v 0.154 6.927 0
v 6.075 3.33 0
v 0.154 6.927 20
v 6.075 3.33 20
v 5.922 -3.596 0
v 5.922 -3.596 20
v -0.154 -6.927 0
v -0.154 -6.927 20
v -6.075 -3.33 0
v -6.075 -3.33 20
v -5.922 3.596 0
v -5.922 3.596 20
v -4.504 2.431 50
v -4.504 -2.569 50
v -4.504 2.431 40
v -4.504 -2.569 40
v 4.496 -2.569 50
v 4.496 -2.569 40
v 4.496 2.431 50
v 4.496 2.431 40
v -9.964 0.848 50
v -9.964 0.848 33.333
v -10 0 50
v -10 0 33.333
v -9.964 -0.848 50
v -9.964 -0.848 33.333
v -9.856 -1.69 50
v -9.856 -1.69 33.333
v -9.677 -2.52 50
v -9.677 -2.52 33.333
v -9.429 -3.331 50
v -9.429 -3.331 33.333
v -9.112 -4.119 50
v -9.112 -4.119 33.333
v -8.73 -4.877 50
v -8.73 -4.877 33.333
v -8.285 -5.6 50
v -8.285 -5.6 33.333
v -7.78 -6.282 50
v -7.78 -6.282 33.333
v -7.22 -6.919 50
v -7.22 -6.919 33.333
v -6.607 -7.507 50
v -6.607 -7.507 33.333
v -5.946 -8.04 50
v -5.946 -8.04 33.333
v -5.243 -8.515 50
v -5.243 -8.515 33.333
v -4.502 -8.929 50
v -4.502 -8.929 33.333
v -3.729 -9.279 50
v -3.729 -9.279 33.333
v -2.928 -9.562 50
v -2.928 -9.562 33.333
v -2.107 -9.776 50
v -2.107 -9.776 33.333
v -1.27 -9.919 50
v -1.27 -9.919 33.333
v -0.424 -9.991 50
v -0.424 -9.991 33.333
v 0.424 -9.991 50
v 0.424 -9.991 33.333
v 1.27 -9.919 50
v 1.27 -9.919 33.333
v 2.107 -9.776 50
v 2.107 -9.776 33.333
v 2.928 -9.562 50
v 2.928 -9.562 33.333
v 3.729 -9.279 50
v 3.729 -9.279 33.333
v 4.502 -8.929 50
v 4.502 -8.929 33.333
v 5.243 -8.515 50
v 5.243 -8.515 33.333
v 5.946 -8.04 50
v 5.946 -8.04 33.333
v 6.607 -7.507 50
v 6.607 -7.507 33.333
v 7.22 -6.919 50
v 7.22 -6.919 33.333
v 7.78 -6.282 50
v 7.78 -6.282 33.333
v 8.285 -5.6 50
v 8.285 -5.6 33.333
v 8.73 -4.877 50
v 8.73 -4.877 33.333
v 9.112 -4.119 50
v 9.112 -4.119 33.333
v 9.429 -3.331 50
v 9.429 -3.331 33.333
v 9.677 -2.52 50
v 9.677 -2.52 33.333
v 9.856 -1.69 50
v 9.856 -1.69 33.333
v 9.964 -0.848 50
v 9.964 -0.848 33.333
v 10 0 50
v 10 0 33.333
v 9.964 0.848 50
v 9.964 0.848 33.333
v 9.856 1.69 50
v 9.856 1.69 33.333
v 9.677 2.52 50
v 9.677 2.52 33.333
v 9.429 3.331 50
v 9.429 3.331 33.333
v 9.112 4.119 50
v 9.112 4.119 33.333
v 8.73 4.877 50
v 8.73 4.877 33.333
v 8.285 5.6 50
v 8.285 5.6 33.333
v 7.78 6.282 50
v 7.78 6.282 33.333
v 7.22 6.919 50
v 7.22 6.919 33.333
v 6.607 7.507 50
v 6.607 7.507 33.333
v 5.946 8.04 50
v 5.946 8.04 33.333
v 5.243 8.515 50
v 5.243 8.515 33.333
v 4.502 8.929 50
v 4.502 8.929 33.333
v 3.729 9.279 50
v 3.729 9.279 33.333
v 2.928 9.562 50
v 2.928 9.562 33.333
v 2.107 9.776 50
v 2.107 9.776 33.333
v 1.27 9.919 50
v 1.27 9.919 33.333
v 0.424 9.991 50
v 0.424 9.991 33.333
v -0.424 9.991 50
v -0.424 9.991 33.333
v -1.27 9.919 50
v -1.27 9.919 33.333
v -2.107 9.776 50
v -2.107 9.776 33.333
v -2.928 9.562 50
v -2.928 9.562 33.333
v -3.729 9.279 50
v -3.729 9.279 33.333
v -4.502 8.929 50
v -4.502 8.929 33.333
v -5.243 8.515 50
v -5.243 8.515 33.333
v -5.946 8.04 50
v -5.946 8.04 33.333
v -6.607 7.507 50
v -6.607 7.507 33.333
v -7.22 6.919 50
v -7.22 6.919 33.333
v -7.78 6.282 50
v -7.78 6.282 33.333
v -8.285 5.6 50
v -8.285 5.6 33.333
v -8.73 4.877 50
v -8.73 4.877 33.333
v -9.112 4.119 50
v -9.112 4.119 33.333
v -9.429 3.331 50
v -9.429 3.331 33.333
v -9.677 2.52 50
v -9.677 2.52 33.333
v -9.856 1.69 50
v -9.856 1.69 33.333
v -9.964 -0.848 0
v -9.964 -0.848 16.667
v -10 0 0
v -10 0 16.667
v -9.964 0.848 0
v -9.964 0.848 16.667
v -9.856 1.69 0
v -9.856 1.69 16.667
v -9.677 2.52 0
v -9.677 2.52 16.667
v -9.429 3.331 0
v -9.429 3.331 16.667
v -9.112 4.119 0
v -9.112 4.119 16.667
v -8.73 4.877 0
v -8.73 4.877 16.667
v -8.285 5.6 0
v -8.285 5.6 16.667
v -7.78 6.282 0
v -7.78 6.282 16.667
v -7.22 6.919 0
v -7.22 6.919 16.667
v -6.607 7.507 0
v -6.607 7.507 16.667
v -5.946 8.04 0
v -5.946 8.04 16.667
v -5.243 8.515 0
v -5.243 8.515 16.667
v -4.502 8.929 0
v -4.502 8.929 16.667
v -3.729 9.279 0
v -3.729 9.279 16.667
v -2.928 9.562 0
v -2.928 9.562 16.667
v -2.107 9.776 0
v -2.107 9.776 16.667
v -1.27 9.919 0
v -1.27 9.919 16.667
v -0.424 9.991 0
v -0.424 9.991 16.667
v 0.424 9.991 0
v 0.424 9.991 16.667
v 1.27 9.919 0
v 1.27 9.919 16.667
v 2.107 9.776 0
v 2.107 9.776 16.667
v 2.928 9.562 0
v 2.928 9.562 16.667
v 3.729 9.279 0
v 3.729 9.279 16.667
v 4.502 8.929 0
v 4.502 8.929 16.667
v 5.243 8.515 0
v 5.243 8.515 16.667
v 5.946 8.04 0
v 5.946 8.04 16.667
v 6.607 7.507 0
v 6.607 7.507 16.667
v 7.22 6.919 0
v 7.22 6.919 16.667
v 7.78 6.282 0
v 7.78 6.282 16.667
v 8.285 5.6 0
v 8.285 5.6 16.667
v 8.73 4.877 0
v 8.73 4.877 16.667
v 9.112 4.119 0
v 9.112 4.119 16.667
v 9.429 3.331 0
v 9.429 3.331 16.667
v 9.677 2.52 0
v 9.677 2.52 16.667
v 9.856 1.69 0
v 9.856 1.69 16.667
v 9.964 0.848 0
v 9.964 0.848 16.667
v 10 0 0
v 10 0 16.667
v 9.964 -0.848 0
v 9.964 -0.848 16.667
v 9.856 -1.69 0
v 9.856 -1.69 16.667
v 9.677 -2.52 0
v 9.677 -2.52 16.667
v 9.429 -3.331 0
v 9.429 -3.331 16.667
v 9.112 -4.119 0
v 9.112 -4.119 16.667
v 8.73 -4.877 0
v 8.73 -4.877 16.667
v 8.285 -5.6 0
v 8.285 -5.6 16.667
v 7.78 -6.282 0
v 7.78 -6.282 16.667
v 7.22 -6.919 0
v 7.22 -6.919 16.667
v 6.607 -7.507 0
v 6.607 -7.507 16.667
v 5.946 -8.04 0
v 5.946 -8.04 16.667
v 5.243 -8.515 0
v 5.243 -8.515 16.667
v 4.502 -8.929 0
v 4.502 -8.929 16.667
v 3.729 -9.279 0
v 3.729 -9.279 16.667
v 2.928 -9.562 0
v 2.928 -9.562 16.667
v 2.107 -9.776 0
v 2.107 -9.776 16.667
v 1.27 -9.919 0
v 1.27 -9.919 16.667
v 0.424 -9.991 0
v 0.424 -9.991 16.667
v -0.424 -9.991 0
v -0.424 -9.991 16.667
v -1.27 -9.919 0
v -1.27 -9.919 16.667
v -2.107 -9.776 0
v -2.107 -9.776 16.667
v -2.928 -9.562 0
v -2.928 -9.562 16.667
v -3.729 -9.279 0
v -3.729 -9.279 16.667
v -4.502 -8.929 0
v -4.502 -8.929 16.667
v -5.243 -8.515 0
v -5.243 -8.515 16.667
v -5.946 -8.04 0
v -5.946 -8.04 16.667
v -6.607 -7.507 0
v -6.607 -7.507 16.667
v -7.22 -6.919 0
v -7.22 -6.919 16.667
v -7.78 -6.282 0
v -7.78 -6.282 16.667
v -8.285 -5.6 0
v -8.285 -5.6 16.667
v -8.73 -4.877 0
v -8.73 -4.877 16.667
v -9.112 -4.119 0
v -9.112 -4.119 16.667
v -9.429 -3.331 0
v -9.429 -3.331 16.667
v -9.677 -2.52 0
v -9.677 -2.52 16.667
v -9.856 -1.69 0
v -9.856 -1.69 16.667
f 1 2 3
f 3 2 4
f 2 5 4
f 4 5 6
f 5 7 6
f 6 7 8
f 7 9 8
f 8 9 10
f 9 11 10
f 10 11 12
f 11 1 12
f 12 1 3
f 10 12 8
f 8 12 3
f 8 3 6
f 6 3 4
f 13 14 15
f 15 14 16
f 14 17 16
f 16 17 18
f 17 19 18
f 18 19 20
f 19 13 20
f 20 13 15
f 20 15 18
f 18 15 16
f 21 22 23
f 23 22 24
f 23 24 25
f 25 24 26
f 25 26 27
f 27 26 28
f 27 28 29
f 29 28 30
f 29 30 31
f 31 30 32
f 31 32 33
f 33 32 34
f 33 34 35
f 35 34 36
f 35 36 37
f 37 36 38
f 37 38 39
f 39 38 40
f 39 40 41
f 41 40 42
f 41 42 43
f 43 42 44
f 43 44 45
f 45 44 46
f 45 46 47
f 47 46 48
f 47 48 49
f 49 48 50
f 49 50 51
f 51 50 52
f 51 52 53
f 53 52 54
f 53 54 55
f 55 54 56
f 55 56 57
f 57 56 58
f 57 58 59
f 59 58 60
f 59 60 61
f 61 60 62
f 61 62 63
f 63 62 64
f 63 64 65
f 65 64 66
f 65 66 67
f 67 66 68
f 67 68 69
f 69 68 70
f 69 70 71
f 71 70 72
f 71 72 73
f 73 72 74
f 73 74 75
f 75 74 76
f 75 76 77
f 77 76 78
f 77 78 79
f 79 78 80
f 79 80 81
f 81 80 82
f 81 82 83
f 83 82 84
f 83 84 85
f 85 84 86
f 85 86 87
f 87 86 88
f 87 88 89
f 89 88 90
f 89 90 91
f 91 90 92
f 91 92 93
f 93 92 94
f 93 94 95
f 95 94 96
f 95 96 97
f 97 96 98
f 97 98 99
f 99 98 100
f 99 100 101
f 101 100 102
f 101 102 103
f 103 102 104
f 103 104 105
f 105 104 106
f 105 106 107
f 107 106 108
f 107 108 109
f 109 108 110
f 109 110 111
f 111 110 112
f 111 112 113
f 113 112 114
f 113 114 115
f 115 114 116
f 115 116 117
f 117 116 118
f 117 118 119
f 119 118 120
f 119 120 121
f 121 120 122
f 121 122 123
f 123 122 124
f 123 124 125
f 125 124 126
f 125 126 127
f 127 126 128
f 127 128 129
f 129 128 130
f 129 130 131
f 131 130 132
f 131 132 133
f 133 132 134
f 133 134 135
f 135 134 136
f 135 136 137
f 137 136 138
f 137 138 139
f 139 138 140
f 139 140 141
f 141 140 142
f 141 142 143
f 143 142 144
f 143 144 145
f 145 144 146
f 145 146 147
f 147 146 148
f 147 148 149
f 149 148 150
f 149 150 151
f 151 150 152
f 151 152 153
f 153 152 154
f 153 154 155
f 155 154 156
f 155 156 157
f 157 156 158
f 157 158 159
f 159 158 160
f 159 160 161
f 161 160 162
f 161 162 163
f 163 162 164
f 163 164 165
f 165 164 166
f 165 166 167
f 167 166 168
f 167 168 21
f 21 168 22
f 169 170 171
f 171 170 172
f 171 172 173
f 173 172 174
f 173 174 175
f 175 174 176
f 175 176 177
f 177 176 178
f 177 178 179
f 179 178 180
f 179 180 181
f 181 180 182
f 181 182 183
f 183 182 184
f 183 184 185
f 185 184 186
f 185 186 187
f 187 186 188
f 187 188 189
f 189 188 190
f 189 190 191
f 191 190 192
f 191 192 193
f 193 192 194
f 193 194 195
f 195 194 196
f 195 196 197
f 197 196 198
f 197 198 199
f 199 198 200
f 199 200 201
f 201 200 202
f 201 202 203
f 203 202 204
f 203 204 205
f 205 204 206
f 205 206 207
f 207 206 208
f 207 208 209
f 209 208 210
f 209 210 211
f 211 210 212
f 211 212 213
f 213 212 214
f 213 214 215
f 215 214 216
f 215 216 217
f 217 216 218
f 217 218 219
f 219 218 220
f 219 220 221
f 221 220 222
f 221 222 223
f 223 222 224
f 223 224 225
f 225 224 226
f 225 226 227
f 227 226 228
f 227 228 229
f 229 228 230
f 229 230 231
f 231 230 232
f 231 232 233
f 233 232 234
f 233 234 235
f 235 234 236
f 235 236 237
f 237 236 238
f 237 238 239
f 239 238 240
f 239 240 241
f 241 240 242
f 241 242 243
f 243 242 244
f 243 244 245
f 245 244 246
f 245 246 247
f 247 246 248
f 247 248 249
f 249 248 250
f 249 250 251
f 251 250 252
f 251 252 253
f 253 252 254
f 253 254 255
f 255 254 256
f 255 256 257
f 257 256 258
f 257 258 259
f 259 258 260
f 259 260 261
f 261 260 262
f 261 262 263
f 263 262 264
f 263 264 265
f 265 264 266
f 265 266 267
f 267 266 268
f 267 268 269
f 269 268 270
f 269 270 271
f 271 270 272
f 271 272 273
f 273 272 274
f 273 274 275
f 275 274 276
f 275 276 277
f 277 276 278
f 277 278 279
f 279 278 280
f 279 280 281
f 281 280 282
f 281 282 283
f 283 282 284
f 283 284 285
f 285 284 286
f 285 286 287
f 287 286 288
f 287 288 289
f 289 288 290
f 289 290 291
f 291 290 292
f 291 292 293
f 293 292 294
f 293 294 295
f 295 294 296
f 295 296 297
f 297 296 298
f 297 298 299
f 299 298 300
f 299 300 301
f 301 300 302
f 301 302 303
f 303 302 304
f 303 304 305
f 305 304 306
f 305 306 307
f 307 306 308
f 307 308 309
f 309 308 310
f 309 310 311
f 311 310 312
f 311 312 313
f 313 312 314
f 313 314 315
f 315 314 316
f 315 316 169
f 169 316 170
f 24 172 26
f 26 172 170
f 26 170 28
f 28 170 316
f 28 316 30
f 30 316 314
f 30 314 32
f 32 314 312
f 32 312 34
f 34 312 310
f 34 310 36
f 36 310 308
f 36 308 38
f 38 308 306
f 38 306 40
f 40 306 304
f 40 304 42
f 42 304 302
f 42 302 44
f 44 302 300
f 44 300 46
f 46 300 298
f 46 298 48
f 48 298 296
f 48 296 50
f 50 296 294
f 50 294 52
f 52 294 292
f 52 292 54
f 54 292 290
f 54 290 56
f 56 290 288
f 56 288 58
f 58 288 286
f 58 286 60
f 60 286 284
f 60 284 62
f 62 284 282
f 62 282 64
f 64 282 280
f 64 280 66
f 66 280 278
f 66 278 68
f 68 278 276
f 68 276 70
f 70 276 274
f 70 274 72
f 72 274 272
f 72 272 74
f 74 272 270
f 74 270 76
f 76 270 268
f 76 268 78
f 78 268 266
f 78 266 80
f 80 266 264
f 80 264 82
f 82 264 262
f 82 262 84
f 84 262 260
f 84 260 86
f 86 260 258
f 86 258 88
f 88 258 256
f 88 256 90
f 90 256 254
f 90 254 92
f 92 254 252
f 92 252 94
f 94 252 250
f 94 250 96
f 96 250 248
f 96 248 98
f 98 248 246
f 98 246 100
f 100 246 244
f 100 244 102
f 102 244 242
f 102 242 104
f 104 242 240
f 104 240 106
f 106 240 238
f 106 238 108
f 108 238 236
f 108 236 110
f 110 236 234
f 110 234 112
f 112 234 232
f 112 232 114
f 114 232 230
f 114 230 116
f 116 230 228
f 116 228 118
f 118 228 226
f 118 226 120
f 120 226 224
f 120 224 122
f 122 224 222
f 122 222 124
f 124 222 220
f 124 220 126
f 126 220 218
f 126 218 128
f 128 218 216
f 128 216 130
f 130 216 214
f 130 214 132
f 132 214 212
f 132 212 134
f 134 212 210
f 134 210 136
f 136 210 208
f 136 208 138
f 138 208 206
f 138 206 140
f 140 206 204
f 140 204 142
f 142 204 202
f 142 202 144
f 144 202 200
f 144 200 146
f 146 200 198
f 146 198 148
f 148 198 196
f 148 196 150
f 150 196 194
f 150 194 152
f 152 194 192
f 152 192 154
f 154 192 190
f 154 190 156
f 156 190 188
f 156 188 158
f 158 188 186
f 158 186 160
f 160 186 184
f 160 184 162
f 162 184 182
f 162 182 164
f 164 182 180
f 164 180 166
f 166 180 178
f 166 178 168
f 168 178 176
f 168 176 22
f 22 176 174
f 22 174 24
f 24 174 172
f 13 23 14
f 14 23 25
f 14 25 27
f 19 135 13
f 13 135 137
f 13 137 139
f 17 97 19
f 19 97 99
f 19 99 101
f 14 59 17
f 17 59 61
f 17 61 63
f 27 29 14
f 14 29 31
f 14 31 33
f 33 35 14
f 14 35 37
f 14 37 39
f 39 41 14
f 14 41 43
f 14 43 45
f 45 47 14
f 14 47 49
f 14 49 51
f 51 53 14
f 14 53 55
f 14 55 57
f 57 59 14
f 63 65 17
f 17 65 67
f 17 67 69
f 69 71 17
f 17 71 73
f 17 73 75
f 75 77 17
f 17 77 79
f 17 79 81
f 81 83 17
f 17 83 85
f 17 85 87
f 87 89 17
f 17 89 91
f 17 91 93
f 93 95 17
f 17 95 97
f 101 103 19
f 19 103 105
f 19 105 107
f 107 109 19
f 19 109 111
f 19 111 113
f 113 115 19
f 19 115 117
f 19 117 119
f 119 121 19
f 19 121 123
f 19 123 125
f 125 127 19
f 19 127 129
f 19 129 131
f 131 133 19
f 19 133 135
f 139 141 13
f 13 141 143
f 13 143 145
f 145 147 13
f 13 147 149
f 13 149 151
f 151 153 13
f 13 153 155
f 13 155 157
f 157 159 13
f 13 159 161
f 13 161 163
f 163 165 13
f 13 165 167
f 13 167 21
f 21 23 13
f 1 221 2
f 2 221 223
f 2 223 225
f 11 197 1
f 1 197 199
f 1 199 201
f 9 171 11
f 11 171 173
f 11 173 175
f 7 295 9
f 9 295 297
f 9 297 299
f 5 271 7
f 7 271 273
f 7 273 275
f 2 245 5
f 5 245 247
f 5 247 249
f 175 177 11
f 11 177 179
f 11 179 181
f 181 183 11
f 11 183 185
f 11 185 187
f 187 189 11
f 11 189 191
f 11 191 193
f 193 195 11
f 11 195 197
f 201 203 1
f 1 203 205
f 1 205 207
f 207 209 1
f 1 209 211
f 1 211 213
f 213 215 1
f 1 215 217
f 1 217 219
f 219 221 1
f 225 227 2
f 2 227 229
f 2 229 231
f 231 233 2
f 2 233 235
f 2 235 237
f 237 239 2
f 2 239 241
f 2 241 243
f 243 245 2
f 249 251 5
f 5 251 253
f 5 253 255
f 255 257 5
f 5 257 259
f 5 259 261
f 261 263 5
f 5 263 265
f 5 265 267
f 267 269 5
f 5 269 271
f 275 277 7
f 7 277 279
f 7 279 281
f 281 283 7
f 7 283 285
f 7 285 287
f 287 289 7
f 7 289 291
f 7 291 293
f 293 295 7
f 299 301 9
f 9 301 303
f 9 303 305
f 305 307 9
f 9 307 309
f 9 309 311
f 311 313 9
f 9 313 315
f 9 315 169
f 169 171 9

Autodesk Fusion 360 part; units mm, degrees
sketch "Sketch1" plane through (0, 0, 0) normal (0, 0, 1) x (1, 0, 0) in component "ADAPTERI2"
  circle A0 centre (0, 0) radius 15
  dimension "d3" = 30
extrude "Extrude1" add sketch "Sketch1" along normal blind 50 in component "ADAPTERI2"
sketch "Sketch2" plane through (-0.004, -0.0691, 50) normal (0, 0, 1) x (-1, 0, 0) in component "ADAPTERI2"
  circle A0 centre (-0.004, -0.0691) radius 15
  line L0 (-4.5, 2.5) -> (4.5, 2.5)
  line L1 (4.5, 2.5) -> (4.5, -2.5)
  line L2 (4.5, -2.5) -> (-4.5, -2.5)
  line L3 (-4.5, -2.5) -> (-4.5, 2.5)
  line L4 (-4.5, 2.5) -> (4.5, -2.5) construction
  line L5 (4.5, 2.5) -> (-4.5, -2.5) construction
  dimension "d6" = 9
  dimension "d7" = 5
extrude "Extrude2" cut sketch "Sketch2" against normal blind 10 contours L0 L1 L2 L3 in component "ADAPTERI2"
sketch "Sketch3" plane through (-0.2192, -4.1274, 0) normal (0, 0, -1) x (1, 0, 0) in component "ADAPTERI2"
  circle A0 centre (0.2192, -4.1274) radius 15
  line L0 (0.3727, -11.0539) -> (6.2945, -7.4577)
  line L1 (6.2945, -7.4577) -> (6.1409, -0.5312)
  line L2 (6.1409, -0.5312) -> (0.0656, 2.7991)
  line L3 (0.0656, 2.7991) -> (-5.8561, -0.7971)
  line L4 (-5.8561, -0.7971) -> (-5.7026, -7.7236)
  line L5 (-5.7026, -7.7236) -> (0.3727, -11.0539)
  point P0 (0.2192, -4.1274)
  dimension "d10" = 6
extrude "Extrude3" cut sketch "Sketch3" against normal blind 20 contours L0 L1 L2 L3 L4 L5 in component "ADAPTERI2"
move_face "OffsetFaces1" offset -5 1 faces at (14.9255, -1.4935, 16.6667) in component "ADAPTERI2"
component "ADAPTERI2" placed x (1, 0, 0) y (0, 1, 0) z (0, 0, 1) at (0, 0, 0)
